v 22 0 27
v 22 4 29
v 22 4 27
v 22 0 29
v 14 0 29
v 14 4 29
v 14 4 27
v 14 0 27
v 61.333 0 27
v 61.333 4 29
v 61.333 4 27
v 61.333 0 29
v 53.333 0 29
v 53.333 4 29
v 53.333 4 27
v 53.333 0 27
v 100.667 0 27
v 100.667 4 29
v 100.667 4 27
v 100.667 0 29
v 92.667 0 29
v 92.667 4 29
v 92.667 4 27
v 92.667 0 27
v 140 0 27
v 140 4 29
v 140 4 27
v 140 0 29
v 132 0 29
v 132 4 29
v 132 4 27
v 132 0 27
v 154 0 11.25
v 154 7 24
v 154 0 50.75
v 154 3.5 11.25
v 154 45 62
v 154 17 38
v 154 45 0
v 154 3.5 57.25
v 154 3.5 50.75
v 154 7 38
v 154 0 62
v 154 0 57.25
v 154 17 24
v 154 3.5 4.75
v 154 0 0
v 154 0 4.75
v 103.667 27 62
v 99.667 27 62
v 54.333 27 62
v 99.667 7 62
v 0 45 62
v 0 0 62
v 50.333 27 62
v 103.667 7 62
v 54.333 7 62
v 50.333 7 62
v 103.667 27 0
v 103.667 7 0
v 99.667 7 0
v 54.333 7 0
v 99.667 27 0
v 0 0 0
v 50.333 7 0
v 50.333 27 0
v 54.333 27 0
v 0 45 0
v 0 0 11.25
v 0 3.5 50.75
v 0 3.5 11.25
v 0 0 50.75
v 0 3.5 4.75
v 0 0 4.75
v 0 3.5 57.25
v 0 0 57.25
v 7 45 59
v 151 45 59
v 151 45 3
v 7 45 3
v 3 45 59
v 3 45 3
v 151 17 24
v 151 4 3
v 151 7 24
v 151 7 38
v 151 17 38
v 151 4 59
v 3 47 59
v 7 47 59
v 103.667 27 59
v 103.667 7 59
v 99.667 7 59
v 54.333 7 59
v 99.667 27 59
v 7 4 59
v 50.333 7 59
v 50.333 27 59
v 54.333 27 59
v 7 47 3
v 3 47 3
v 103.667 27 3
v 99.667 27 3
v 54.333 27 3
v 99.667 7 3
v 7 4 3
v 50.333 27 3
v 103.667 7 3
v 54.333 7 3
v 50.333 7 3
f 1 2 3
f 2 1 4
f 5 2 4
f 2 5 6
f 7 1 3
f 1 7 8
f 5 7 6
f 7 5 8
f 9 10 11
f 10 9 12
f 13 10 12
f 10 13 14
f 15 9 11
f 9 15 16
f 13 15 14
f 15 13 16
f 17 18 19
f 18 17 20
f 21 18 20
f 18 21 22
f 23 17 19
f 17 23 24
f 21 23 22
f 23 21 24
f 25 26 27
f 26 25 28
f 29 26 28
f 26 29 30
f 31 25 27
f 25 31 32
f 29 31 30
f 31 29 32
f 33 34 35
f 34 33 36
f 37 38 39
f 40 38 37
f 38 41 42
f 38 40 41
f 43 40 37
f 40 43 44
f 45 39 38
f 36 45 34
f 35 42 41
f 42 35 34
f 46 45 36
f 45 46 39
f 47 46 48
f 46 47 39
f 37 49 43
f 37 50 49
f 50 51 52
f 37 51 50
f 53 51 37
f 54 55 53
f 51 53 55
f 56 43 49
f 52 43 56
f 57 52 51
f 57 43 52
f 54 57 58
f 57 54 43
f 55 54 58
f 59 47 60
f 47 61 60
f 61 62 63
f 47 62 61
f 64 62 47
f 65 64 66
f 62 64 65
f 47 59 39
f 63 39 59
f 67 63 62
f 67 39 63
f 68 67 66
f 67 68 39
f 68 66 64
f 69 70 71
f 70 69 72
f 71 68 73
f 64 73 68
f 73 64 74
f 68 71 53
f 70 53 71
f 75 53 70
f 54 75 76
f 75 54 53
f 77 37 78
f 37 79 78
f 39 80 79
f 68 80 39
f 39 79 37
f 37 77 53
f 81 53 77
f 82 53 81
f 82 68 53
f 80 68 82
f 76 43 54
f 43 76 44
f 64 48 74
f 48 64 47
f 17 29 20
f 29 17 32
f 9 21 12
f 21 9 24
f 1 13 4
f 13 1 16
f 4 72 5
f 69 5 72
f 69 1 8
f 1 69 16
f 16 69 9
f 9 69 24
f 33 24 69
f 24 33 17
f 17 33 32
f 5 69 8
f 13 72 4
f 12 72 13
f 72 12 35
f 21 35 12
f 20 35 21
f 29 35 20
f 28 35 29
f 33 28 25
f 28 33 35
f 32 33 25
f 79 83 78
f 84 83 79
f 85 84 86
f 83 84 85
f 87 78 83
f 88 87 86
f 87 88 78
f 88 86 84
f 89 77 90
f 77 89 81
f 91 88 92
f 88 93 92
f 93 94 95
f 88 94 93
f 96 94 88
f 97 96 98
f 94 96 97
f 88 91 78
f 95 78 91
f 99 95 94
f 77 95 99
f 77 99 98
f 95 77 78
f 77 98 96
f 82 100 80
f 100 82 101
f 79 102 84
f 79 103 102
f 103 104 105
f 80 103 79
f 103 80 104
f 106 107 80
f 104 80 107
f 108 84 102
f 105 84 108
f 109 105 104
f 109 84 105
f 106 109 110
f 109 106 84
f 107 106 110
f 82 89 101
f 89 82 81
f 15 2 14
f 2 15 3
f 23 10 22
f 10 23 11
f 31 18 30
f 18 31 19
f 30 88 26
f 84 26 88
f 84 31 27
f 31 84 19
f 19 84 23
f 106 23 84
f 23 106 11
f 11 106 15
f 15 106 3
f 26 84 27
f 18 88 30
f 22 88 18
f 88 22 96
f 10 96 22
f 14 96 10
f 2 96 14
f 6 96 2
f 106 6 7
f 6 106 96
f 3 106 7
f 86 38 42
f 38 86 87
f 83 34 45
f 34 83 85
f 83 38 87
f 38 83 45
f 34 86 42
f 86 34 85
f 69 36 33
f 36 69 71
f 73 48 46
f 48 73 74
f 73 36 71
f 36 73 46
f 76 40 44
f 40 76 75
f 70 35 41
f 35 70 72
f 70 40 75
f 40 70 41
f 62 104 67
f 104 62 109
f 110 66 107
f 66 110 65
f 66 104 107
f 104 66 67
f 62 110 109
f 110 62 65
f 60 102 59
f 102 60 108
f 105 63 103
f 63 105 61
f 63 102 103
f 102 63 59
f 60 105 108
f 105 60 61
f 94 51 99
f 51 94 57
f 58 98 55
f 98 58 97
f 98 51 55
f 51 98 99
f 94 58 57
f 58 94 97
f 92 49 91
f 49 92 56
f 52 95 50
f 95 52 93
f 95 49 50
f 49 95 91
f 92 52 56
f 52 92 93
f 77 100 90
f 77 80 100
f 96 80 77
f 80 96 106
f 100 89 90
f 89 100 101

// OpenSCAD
// ============================================================
// battery_tray.scad
// Battery tray for Serenity UAV 24" hull — 6S 4000 mAh LiPo.
//
// Rev Q (2026-06-07): Initial release.
//   CG analysis places battery centroid at ~3.31 in (~84 mm) from nose.
//   Tray spans stations 2.36–5.12 in (60–130 mm) inside head/bridge section.
//   Tray slides on 6×3 mm CF flat bar keel via two bottom rail
//   slots; ±0.79 in (±20 mm) fore-aft adjustment, locks at
//   0.39 in (10 mm) detents via M3 thumb screws.
//
//   Battery: Tattu / Gens Ace 4000 mAh 6S LiPo
//     Nominal dims (Tattu R-Line): 5.59 × 1.97 × 1.50 in (142 × 50 × 38 mm) L×W×H
//     Mass: 1.65 lbm (750 g)
//
//   Interior cavity (battery + 0.118 in / 3 mm foam each side):
//     5.83 × 2.20 × 1.61 in (148 × 56 × 41 mm) L×W×H
//
//   Outer tray dimensions:
//     6.06 × 2.44 × 1.77 in (154 × 62 × 45 mm) L×W×H
//
//   Wall thickness: 0.118 in (3.0 mm) CF-PETG side/front/rear
//   Floor thickness: 0.157 in (4.0 mm) CF-PETG load-bearing
//   Estimated printed mass: ~0.049 lbm (~22 g)
//
//   Retention — three independent mechanisms:
//     1. Forward positive-stop rib (0.157 in / 4 mm CF-PETG).
//     2. Two 0.63 in (16 mm) silicone cam-buckle straps (11.2 lbf / 50 N rated).
//     3. 0.118 in (3 mm) silicone anti-slip/vibration foam on floor and walls.
//   5G crash retention safety factor: 2.7× (see docs/BATTERY_MOUNT.md §3.2).
//   Under 5G load: 36.8 N (8.27 lbf) upward; two straps provide 100 N (22.5 lbf).
//
//   Belly access panel (separate part: belly_panel.scad):
//     6.30 × 2.56 in (160 × 65 mm) PETG panel, 2× M3 coin-slot screws,
//     0.059 in (1.5 mm) rebate.
//
// Author:  Steve Griffing, PE(CSE), CISSP-ISSEP, CPP
// License: CC BY 4.0 — creativecommons.org/licenses/by/4.0
//
// Print spec:
//   Material: CF-PETG (hardened-steel nozzle required)
//   Layer:    0.15 mm
//   Walls:    4 perimeters
//   Infill:   40% gyroid (load-bearing)
//   Est. mass: ~22 g
//
// Coordinate system (tray-local, origin = tray front-interior corner):
//   X — longitudinal: positive toward nose (forward)
//   Y — vertical:     positive upward
//   Z — lateral:      positive toward port
//
// References:
//   [1] docs/BATTERY_MOUNT.md — CG analysis + retention load case.
//   [2] Tattu R-Line 4000 mAh 6S datasheet, dimensions 142×50×38 mm.
//   [3] CLAUDE.md — fabrication standards (wall thickness, infill, boss spec).
// ============================================================

$fn = 64;    // Facet count for cylinders/spheres

// ------------------------------------------------------------
// Battery dimensions (Tattu R-Line 4000 mAh 6S LiPo)
// Imperial primary: 5.59 × 1.97 × 1.50 in (142 × 50 × 38 mm)
// ------------------------------------------------------------
BATT_L  = 142.0;   // mm — battery length  (fore-aft)   = 5.59 in
BATT_W  =  50.0;   // mm — battery width   (port-stbd)  = 1.97 in
BATT_H  =  38.0;   // mm — battery height  (top-bottom) = 1.50 in

// ------------------------------------------------------------
// Foam padding (3 mm / 0.118 in closed-cell silicone, Shore A 20-30)
// Applied to floor and all four side walls.
// ------------------------------------------------------------
FOAM    = 3.0;     // mm — foam thickness each face  = 0.118 in

// ------------------------------------------------------------
// Wall and floor thicknesses (CF-PETG structural)
// ------------------------------------------------------------
WALL    = 3.0;     // mm — side/front/rear wall thickness  = 0.118 in
FLOOR   = 4.0;     // mm — floor thickness (load-bearing)  = 0.157 in

// ------------------------------------------------------------
// Interior cavity (battery + foam each side)
// Imperial: 5.83 × 2.20 × 1.61 in (148 × 56 × 41 mm)
// ------------------------------------------------------------
CAV_L   = BATT_L + 2 * FOAM;    // 148 mm (5.83 in) fore-aft
CAV_W   = BATT_W + 2 * FOAM;    //  56 mm (2.20 in) port-stbd
CAV_H   = BATT_H + FOAM;        //  41 mm (1.61 in) (foam on floor only; top is open)

// ------------------------------------------------------------
// Outer tray dimensions
// Imperial: 6.06 × 2.44 × 1.77 in (154 × 62 × 45 mm)
// ------------------------------------------------------------
TRAY_L  = CAV_L + 2 * WALL;     // 154 mm (6.06 in)
TRAY_W  = CAV_W + 2 * WALL;     //  62 mm (2.44 in)
TRAY_H  = CAV_H + FLOOR;        //  45 mm (1.77 in)

// ------------------------------------------------------------
// Rail system (CF-BAR-6×3 keel bar interface)
// Two bottom slots run full tray length; rail travel ±0.79 in (±20 mm).
// ------------------------------------------------------------
RAIL_W      = 6.5;    // mm — slot width  (6 mm bar + 0.25 mm clearance each side)  = 0.256 in
RAIL_D      = 3.5;    // mm — slot depth  (3 mm bar + 0.25 mm clearance)             = 0.138 in
RAIL_INSET  = 8.0;    // mm — inset from outer tray edge Z-wise
DETENT_DIA  = 3.2;    // mm — M3 detent screw bore diameter
DETENT_STEP = 10.0;   // mm — detent spacing (10 mm increments along X)
DETENT_N    = 5;      // number of detent positions (covers ±20 mm from centre)

// ------------------------------------------------------------
// Strap anchor slots (two per strap × 2 straps = 4 slots)
// Slots are 4 mm wide × 20 mm long through the tray walls,
// positioned at 1/3 and 2/3 of battery length.
// ------------------------------------------------------------
STRAP_SLOT_W  = 4.0;    // mm — strap slot width
STRAP_SLOT_L  = 20.0;   // mm — strap slot length (through tray wall, Y direction)
STRAP_POS_1   = CAV_L * (1.0 / 3.0) + WALL;   // slot 1 X-centre from tray front
STRAP_POS_2   = CAV_L * (2.0 / 3.0) + WALL;   // slot 2 X-centre from tray front

// ------------------------------------------------------------
// Connector exit slot in rear wall (XT60 + JST-XH-7P balance)
// ------------------------------------------------------------
EXIT_W  = 14.0;   // mm — slot width
EXIT_H  = 10.0;   // mm — slot height

// ------------------------------------------------------------
// Ventilation slots in floor (4× 8×2 mm; covered by stainless mesh)
// ------------------------------------------------------------
VENT_L  = 8.0;    // mm — vent slot length (fore-aft)
VENT_W  = 2.0;    // mm — vent slot width  (port-stbd)
VENT_N  = 4;      // number of vent slots
VENT_MARGIN = 15.0;   // mm — margin from front and rear interior face

// ------------------------------------------------------------
// Forward stop rib (prevents battery sliding forward under braking)
// ------------------------------------------------------------
STOP_T  = 4.0;    // mm — rib thickness (CF-PETG, flush with cavity front wall)
STOP_H  = BATT_H + FOAM + 2.0;  // mm — rib height (full cavity height + clearance)

// ------------------------------------------------------------
// M3 heat-set boss for detent thumb screws (side wall)
// ------------------------------------------------------------
BOSS_OD  = 8.0;   // mm — boss outer diameter (2-wall annulus, per CLAUDE.md)
BOSS_H   = WALL;  // mm — boss flush with outer wall face

// ============================================================
// Main tray body
// ============================================================
module battery_tray() {
    difference() {
        // --- Outer solid block ---
        cube([TRAY_L, TRAY_H, TRAY_W]);

        // --- Interior cavity (open top) ---
        translate([WALL, FLOOR, WALL])
            cube([CAV_L, CAV_H + 1.0, CAV_W]);   // +1 mm so top is fully open

        // --- Connector exit slot in rear wall ---
        // Centred on rear wall (X = TRAY_L - WALL .. TRAY_L), floor-level exit
        translate([
            TRAY_L - WALL - 0.1,
            FLOOR + FOAM,
            (TRAY_W - EXIT_W) / 2.0
        ])
            cube([WALL + 0.2, EXIT_H, EXIT_W]);

        // --- Rail slots on tray underside (two slots, fore-aft) ---
        // Port rail
        translate([-0.1, -0.1, RAIL_INSET - RAIL_W / 2.0])
            cube([TRAY_L + 0.2, RAIL_D + 0.1, RAIL_W]);

        // Stbd rail
        translate([-0.1, -0.1, TRAY_W - RAIL_INSET - RAIL_W / 2.0])
            cube([TRAY_L + 0.2, RAIL_D + 0.1, RAIL_W]);

        // --- Detent screw bores through stbd side wall ---
        // Bores are perpendicular to keel bar (Z-axis), through stbd outer wall
        for (i = [0 : DETENT_N - 1]) {
            detent_x = WALL + VENT_MARGIN + i * DETENT_STEP;
            translate([detent_x, FLOOR / 2.0, TRAY_W + 0.1])
                rotate([0, 0, -90])
                    cylinder(h = WALL + 0.2, d = DETENT_DIA);
        }

        // --- Strap anchor slots through port side wall ---
        // Slot 1 at 1/3 battery length
        translate([
            STRAP_POS_1 - STRAP_SLOT_W / 2.0,
            FLOOR + FOAM,
            -0.1
        ])
            cube([STRAP_SLOT_W, STRAP_SLOT_L, WALL + 0.2]);

        // Slot 2 at 2/3 battery length
        translate([
            STRAP_POS_2 - STRAP_SLOT_W / 2.0,
            FLOOR + FOAM,
            -0.1
        ])
            cube([STRAP_SLOT_W, STRAP_SLOT_L, WALL + 0.2]);

        // --- Strap anchor slots through stbd side wall ---
        translate([
            STRAP_POS_1 - STRAP_SLOT_W / 2.0,
            FLOOR + FOAM,
            TRAY_W - WALL - 0.1
        ])
            cube([STRAP_SLOT_W, STRAP_SLOT_L, WALL + 0.2]);

        translate([
            STRAP_POS_2 - STRAP_SLOT_W / 2.0,
            FLOOR + FOAM,
            TRAY_W - WALL - 0.1
        ])
            cube([STRAP_SLOT_W, STRAP_SLOT_L, WALL + 0.2]);

        // --- Ventilation slots through tray floor ---
        // Evenly spaced along cavity length, avoiding strap zone ±15 mm
        for (i = [0 : VENT_N - 1]) {
            vent_x = WALL + VENT_MARGIN + i * ((CAV_L - 2.0 * VENT_MARGIN) / (VENT_N - 1));
            vent_z = (TRAY_W - VENT_L) / 2.0;  // centred laterally
            translate([vent_x - VENT_L / 2.0, -0.1, vent_z])
                cube([VENT_L, FLOOR + 0.2, VENT_W]);
        }
    }

    // --- Forward stop rib (added, sits at interior front wall) ---
    translate([WALL, FLOOR, WALL])
        cube([STOP_T, STOP_H, CAV_W]);
}

// ============================================================
// Render
// ============================================================
battery_tray();
